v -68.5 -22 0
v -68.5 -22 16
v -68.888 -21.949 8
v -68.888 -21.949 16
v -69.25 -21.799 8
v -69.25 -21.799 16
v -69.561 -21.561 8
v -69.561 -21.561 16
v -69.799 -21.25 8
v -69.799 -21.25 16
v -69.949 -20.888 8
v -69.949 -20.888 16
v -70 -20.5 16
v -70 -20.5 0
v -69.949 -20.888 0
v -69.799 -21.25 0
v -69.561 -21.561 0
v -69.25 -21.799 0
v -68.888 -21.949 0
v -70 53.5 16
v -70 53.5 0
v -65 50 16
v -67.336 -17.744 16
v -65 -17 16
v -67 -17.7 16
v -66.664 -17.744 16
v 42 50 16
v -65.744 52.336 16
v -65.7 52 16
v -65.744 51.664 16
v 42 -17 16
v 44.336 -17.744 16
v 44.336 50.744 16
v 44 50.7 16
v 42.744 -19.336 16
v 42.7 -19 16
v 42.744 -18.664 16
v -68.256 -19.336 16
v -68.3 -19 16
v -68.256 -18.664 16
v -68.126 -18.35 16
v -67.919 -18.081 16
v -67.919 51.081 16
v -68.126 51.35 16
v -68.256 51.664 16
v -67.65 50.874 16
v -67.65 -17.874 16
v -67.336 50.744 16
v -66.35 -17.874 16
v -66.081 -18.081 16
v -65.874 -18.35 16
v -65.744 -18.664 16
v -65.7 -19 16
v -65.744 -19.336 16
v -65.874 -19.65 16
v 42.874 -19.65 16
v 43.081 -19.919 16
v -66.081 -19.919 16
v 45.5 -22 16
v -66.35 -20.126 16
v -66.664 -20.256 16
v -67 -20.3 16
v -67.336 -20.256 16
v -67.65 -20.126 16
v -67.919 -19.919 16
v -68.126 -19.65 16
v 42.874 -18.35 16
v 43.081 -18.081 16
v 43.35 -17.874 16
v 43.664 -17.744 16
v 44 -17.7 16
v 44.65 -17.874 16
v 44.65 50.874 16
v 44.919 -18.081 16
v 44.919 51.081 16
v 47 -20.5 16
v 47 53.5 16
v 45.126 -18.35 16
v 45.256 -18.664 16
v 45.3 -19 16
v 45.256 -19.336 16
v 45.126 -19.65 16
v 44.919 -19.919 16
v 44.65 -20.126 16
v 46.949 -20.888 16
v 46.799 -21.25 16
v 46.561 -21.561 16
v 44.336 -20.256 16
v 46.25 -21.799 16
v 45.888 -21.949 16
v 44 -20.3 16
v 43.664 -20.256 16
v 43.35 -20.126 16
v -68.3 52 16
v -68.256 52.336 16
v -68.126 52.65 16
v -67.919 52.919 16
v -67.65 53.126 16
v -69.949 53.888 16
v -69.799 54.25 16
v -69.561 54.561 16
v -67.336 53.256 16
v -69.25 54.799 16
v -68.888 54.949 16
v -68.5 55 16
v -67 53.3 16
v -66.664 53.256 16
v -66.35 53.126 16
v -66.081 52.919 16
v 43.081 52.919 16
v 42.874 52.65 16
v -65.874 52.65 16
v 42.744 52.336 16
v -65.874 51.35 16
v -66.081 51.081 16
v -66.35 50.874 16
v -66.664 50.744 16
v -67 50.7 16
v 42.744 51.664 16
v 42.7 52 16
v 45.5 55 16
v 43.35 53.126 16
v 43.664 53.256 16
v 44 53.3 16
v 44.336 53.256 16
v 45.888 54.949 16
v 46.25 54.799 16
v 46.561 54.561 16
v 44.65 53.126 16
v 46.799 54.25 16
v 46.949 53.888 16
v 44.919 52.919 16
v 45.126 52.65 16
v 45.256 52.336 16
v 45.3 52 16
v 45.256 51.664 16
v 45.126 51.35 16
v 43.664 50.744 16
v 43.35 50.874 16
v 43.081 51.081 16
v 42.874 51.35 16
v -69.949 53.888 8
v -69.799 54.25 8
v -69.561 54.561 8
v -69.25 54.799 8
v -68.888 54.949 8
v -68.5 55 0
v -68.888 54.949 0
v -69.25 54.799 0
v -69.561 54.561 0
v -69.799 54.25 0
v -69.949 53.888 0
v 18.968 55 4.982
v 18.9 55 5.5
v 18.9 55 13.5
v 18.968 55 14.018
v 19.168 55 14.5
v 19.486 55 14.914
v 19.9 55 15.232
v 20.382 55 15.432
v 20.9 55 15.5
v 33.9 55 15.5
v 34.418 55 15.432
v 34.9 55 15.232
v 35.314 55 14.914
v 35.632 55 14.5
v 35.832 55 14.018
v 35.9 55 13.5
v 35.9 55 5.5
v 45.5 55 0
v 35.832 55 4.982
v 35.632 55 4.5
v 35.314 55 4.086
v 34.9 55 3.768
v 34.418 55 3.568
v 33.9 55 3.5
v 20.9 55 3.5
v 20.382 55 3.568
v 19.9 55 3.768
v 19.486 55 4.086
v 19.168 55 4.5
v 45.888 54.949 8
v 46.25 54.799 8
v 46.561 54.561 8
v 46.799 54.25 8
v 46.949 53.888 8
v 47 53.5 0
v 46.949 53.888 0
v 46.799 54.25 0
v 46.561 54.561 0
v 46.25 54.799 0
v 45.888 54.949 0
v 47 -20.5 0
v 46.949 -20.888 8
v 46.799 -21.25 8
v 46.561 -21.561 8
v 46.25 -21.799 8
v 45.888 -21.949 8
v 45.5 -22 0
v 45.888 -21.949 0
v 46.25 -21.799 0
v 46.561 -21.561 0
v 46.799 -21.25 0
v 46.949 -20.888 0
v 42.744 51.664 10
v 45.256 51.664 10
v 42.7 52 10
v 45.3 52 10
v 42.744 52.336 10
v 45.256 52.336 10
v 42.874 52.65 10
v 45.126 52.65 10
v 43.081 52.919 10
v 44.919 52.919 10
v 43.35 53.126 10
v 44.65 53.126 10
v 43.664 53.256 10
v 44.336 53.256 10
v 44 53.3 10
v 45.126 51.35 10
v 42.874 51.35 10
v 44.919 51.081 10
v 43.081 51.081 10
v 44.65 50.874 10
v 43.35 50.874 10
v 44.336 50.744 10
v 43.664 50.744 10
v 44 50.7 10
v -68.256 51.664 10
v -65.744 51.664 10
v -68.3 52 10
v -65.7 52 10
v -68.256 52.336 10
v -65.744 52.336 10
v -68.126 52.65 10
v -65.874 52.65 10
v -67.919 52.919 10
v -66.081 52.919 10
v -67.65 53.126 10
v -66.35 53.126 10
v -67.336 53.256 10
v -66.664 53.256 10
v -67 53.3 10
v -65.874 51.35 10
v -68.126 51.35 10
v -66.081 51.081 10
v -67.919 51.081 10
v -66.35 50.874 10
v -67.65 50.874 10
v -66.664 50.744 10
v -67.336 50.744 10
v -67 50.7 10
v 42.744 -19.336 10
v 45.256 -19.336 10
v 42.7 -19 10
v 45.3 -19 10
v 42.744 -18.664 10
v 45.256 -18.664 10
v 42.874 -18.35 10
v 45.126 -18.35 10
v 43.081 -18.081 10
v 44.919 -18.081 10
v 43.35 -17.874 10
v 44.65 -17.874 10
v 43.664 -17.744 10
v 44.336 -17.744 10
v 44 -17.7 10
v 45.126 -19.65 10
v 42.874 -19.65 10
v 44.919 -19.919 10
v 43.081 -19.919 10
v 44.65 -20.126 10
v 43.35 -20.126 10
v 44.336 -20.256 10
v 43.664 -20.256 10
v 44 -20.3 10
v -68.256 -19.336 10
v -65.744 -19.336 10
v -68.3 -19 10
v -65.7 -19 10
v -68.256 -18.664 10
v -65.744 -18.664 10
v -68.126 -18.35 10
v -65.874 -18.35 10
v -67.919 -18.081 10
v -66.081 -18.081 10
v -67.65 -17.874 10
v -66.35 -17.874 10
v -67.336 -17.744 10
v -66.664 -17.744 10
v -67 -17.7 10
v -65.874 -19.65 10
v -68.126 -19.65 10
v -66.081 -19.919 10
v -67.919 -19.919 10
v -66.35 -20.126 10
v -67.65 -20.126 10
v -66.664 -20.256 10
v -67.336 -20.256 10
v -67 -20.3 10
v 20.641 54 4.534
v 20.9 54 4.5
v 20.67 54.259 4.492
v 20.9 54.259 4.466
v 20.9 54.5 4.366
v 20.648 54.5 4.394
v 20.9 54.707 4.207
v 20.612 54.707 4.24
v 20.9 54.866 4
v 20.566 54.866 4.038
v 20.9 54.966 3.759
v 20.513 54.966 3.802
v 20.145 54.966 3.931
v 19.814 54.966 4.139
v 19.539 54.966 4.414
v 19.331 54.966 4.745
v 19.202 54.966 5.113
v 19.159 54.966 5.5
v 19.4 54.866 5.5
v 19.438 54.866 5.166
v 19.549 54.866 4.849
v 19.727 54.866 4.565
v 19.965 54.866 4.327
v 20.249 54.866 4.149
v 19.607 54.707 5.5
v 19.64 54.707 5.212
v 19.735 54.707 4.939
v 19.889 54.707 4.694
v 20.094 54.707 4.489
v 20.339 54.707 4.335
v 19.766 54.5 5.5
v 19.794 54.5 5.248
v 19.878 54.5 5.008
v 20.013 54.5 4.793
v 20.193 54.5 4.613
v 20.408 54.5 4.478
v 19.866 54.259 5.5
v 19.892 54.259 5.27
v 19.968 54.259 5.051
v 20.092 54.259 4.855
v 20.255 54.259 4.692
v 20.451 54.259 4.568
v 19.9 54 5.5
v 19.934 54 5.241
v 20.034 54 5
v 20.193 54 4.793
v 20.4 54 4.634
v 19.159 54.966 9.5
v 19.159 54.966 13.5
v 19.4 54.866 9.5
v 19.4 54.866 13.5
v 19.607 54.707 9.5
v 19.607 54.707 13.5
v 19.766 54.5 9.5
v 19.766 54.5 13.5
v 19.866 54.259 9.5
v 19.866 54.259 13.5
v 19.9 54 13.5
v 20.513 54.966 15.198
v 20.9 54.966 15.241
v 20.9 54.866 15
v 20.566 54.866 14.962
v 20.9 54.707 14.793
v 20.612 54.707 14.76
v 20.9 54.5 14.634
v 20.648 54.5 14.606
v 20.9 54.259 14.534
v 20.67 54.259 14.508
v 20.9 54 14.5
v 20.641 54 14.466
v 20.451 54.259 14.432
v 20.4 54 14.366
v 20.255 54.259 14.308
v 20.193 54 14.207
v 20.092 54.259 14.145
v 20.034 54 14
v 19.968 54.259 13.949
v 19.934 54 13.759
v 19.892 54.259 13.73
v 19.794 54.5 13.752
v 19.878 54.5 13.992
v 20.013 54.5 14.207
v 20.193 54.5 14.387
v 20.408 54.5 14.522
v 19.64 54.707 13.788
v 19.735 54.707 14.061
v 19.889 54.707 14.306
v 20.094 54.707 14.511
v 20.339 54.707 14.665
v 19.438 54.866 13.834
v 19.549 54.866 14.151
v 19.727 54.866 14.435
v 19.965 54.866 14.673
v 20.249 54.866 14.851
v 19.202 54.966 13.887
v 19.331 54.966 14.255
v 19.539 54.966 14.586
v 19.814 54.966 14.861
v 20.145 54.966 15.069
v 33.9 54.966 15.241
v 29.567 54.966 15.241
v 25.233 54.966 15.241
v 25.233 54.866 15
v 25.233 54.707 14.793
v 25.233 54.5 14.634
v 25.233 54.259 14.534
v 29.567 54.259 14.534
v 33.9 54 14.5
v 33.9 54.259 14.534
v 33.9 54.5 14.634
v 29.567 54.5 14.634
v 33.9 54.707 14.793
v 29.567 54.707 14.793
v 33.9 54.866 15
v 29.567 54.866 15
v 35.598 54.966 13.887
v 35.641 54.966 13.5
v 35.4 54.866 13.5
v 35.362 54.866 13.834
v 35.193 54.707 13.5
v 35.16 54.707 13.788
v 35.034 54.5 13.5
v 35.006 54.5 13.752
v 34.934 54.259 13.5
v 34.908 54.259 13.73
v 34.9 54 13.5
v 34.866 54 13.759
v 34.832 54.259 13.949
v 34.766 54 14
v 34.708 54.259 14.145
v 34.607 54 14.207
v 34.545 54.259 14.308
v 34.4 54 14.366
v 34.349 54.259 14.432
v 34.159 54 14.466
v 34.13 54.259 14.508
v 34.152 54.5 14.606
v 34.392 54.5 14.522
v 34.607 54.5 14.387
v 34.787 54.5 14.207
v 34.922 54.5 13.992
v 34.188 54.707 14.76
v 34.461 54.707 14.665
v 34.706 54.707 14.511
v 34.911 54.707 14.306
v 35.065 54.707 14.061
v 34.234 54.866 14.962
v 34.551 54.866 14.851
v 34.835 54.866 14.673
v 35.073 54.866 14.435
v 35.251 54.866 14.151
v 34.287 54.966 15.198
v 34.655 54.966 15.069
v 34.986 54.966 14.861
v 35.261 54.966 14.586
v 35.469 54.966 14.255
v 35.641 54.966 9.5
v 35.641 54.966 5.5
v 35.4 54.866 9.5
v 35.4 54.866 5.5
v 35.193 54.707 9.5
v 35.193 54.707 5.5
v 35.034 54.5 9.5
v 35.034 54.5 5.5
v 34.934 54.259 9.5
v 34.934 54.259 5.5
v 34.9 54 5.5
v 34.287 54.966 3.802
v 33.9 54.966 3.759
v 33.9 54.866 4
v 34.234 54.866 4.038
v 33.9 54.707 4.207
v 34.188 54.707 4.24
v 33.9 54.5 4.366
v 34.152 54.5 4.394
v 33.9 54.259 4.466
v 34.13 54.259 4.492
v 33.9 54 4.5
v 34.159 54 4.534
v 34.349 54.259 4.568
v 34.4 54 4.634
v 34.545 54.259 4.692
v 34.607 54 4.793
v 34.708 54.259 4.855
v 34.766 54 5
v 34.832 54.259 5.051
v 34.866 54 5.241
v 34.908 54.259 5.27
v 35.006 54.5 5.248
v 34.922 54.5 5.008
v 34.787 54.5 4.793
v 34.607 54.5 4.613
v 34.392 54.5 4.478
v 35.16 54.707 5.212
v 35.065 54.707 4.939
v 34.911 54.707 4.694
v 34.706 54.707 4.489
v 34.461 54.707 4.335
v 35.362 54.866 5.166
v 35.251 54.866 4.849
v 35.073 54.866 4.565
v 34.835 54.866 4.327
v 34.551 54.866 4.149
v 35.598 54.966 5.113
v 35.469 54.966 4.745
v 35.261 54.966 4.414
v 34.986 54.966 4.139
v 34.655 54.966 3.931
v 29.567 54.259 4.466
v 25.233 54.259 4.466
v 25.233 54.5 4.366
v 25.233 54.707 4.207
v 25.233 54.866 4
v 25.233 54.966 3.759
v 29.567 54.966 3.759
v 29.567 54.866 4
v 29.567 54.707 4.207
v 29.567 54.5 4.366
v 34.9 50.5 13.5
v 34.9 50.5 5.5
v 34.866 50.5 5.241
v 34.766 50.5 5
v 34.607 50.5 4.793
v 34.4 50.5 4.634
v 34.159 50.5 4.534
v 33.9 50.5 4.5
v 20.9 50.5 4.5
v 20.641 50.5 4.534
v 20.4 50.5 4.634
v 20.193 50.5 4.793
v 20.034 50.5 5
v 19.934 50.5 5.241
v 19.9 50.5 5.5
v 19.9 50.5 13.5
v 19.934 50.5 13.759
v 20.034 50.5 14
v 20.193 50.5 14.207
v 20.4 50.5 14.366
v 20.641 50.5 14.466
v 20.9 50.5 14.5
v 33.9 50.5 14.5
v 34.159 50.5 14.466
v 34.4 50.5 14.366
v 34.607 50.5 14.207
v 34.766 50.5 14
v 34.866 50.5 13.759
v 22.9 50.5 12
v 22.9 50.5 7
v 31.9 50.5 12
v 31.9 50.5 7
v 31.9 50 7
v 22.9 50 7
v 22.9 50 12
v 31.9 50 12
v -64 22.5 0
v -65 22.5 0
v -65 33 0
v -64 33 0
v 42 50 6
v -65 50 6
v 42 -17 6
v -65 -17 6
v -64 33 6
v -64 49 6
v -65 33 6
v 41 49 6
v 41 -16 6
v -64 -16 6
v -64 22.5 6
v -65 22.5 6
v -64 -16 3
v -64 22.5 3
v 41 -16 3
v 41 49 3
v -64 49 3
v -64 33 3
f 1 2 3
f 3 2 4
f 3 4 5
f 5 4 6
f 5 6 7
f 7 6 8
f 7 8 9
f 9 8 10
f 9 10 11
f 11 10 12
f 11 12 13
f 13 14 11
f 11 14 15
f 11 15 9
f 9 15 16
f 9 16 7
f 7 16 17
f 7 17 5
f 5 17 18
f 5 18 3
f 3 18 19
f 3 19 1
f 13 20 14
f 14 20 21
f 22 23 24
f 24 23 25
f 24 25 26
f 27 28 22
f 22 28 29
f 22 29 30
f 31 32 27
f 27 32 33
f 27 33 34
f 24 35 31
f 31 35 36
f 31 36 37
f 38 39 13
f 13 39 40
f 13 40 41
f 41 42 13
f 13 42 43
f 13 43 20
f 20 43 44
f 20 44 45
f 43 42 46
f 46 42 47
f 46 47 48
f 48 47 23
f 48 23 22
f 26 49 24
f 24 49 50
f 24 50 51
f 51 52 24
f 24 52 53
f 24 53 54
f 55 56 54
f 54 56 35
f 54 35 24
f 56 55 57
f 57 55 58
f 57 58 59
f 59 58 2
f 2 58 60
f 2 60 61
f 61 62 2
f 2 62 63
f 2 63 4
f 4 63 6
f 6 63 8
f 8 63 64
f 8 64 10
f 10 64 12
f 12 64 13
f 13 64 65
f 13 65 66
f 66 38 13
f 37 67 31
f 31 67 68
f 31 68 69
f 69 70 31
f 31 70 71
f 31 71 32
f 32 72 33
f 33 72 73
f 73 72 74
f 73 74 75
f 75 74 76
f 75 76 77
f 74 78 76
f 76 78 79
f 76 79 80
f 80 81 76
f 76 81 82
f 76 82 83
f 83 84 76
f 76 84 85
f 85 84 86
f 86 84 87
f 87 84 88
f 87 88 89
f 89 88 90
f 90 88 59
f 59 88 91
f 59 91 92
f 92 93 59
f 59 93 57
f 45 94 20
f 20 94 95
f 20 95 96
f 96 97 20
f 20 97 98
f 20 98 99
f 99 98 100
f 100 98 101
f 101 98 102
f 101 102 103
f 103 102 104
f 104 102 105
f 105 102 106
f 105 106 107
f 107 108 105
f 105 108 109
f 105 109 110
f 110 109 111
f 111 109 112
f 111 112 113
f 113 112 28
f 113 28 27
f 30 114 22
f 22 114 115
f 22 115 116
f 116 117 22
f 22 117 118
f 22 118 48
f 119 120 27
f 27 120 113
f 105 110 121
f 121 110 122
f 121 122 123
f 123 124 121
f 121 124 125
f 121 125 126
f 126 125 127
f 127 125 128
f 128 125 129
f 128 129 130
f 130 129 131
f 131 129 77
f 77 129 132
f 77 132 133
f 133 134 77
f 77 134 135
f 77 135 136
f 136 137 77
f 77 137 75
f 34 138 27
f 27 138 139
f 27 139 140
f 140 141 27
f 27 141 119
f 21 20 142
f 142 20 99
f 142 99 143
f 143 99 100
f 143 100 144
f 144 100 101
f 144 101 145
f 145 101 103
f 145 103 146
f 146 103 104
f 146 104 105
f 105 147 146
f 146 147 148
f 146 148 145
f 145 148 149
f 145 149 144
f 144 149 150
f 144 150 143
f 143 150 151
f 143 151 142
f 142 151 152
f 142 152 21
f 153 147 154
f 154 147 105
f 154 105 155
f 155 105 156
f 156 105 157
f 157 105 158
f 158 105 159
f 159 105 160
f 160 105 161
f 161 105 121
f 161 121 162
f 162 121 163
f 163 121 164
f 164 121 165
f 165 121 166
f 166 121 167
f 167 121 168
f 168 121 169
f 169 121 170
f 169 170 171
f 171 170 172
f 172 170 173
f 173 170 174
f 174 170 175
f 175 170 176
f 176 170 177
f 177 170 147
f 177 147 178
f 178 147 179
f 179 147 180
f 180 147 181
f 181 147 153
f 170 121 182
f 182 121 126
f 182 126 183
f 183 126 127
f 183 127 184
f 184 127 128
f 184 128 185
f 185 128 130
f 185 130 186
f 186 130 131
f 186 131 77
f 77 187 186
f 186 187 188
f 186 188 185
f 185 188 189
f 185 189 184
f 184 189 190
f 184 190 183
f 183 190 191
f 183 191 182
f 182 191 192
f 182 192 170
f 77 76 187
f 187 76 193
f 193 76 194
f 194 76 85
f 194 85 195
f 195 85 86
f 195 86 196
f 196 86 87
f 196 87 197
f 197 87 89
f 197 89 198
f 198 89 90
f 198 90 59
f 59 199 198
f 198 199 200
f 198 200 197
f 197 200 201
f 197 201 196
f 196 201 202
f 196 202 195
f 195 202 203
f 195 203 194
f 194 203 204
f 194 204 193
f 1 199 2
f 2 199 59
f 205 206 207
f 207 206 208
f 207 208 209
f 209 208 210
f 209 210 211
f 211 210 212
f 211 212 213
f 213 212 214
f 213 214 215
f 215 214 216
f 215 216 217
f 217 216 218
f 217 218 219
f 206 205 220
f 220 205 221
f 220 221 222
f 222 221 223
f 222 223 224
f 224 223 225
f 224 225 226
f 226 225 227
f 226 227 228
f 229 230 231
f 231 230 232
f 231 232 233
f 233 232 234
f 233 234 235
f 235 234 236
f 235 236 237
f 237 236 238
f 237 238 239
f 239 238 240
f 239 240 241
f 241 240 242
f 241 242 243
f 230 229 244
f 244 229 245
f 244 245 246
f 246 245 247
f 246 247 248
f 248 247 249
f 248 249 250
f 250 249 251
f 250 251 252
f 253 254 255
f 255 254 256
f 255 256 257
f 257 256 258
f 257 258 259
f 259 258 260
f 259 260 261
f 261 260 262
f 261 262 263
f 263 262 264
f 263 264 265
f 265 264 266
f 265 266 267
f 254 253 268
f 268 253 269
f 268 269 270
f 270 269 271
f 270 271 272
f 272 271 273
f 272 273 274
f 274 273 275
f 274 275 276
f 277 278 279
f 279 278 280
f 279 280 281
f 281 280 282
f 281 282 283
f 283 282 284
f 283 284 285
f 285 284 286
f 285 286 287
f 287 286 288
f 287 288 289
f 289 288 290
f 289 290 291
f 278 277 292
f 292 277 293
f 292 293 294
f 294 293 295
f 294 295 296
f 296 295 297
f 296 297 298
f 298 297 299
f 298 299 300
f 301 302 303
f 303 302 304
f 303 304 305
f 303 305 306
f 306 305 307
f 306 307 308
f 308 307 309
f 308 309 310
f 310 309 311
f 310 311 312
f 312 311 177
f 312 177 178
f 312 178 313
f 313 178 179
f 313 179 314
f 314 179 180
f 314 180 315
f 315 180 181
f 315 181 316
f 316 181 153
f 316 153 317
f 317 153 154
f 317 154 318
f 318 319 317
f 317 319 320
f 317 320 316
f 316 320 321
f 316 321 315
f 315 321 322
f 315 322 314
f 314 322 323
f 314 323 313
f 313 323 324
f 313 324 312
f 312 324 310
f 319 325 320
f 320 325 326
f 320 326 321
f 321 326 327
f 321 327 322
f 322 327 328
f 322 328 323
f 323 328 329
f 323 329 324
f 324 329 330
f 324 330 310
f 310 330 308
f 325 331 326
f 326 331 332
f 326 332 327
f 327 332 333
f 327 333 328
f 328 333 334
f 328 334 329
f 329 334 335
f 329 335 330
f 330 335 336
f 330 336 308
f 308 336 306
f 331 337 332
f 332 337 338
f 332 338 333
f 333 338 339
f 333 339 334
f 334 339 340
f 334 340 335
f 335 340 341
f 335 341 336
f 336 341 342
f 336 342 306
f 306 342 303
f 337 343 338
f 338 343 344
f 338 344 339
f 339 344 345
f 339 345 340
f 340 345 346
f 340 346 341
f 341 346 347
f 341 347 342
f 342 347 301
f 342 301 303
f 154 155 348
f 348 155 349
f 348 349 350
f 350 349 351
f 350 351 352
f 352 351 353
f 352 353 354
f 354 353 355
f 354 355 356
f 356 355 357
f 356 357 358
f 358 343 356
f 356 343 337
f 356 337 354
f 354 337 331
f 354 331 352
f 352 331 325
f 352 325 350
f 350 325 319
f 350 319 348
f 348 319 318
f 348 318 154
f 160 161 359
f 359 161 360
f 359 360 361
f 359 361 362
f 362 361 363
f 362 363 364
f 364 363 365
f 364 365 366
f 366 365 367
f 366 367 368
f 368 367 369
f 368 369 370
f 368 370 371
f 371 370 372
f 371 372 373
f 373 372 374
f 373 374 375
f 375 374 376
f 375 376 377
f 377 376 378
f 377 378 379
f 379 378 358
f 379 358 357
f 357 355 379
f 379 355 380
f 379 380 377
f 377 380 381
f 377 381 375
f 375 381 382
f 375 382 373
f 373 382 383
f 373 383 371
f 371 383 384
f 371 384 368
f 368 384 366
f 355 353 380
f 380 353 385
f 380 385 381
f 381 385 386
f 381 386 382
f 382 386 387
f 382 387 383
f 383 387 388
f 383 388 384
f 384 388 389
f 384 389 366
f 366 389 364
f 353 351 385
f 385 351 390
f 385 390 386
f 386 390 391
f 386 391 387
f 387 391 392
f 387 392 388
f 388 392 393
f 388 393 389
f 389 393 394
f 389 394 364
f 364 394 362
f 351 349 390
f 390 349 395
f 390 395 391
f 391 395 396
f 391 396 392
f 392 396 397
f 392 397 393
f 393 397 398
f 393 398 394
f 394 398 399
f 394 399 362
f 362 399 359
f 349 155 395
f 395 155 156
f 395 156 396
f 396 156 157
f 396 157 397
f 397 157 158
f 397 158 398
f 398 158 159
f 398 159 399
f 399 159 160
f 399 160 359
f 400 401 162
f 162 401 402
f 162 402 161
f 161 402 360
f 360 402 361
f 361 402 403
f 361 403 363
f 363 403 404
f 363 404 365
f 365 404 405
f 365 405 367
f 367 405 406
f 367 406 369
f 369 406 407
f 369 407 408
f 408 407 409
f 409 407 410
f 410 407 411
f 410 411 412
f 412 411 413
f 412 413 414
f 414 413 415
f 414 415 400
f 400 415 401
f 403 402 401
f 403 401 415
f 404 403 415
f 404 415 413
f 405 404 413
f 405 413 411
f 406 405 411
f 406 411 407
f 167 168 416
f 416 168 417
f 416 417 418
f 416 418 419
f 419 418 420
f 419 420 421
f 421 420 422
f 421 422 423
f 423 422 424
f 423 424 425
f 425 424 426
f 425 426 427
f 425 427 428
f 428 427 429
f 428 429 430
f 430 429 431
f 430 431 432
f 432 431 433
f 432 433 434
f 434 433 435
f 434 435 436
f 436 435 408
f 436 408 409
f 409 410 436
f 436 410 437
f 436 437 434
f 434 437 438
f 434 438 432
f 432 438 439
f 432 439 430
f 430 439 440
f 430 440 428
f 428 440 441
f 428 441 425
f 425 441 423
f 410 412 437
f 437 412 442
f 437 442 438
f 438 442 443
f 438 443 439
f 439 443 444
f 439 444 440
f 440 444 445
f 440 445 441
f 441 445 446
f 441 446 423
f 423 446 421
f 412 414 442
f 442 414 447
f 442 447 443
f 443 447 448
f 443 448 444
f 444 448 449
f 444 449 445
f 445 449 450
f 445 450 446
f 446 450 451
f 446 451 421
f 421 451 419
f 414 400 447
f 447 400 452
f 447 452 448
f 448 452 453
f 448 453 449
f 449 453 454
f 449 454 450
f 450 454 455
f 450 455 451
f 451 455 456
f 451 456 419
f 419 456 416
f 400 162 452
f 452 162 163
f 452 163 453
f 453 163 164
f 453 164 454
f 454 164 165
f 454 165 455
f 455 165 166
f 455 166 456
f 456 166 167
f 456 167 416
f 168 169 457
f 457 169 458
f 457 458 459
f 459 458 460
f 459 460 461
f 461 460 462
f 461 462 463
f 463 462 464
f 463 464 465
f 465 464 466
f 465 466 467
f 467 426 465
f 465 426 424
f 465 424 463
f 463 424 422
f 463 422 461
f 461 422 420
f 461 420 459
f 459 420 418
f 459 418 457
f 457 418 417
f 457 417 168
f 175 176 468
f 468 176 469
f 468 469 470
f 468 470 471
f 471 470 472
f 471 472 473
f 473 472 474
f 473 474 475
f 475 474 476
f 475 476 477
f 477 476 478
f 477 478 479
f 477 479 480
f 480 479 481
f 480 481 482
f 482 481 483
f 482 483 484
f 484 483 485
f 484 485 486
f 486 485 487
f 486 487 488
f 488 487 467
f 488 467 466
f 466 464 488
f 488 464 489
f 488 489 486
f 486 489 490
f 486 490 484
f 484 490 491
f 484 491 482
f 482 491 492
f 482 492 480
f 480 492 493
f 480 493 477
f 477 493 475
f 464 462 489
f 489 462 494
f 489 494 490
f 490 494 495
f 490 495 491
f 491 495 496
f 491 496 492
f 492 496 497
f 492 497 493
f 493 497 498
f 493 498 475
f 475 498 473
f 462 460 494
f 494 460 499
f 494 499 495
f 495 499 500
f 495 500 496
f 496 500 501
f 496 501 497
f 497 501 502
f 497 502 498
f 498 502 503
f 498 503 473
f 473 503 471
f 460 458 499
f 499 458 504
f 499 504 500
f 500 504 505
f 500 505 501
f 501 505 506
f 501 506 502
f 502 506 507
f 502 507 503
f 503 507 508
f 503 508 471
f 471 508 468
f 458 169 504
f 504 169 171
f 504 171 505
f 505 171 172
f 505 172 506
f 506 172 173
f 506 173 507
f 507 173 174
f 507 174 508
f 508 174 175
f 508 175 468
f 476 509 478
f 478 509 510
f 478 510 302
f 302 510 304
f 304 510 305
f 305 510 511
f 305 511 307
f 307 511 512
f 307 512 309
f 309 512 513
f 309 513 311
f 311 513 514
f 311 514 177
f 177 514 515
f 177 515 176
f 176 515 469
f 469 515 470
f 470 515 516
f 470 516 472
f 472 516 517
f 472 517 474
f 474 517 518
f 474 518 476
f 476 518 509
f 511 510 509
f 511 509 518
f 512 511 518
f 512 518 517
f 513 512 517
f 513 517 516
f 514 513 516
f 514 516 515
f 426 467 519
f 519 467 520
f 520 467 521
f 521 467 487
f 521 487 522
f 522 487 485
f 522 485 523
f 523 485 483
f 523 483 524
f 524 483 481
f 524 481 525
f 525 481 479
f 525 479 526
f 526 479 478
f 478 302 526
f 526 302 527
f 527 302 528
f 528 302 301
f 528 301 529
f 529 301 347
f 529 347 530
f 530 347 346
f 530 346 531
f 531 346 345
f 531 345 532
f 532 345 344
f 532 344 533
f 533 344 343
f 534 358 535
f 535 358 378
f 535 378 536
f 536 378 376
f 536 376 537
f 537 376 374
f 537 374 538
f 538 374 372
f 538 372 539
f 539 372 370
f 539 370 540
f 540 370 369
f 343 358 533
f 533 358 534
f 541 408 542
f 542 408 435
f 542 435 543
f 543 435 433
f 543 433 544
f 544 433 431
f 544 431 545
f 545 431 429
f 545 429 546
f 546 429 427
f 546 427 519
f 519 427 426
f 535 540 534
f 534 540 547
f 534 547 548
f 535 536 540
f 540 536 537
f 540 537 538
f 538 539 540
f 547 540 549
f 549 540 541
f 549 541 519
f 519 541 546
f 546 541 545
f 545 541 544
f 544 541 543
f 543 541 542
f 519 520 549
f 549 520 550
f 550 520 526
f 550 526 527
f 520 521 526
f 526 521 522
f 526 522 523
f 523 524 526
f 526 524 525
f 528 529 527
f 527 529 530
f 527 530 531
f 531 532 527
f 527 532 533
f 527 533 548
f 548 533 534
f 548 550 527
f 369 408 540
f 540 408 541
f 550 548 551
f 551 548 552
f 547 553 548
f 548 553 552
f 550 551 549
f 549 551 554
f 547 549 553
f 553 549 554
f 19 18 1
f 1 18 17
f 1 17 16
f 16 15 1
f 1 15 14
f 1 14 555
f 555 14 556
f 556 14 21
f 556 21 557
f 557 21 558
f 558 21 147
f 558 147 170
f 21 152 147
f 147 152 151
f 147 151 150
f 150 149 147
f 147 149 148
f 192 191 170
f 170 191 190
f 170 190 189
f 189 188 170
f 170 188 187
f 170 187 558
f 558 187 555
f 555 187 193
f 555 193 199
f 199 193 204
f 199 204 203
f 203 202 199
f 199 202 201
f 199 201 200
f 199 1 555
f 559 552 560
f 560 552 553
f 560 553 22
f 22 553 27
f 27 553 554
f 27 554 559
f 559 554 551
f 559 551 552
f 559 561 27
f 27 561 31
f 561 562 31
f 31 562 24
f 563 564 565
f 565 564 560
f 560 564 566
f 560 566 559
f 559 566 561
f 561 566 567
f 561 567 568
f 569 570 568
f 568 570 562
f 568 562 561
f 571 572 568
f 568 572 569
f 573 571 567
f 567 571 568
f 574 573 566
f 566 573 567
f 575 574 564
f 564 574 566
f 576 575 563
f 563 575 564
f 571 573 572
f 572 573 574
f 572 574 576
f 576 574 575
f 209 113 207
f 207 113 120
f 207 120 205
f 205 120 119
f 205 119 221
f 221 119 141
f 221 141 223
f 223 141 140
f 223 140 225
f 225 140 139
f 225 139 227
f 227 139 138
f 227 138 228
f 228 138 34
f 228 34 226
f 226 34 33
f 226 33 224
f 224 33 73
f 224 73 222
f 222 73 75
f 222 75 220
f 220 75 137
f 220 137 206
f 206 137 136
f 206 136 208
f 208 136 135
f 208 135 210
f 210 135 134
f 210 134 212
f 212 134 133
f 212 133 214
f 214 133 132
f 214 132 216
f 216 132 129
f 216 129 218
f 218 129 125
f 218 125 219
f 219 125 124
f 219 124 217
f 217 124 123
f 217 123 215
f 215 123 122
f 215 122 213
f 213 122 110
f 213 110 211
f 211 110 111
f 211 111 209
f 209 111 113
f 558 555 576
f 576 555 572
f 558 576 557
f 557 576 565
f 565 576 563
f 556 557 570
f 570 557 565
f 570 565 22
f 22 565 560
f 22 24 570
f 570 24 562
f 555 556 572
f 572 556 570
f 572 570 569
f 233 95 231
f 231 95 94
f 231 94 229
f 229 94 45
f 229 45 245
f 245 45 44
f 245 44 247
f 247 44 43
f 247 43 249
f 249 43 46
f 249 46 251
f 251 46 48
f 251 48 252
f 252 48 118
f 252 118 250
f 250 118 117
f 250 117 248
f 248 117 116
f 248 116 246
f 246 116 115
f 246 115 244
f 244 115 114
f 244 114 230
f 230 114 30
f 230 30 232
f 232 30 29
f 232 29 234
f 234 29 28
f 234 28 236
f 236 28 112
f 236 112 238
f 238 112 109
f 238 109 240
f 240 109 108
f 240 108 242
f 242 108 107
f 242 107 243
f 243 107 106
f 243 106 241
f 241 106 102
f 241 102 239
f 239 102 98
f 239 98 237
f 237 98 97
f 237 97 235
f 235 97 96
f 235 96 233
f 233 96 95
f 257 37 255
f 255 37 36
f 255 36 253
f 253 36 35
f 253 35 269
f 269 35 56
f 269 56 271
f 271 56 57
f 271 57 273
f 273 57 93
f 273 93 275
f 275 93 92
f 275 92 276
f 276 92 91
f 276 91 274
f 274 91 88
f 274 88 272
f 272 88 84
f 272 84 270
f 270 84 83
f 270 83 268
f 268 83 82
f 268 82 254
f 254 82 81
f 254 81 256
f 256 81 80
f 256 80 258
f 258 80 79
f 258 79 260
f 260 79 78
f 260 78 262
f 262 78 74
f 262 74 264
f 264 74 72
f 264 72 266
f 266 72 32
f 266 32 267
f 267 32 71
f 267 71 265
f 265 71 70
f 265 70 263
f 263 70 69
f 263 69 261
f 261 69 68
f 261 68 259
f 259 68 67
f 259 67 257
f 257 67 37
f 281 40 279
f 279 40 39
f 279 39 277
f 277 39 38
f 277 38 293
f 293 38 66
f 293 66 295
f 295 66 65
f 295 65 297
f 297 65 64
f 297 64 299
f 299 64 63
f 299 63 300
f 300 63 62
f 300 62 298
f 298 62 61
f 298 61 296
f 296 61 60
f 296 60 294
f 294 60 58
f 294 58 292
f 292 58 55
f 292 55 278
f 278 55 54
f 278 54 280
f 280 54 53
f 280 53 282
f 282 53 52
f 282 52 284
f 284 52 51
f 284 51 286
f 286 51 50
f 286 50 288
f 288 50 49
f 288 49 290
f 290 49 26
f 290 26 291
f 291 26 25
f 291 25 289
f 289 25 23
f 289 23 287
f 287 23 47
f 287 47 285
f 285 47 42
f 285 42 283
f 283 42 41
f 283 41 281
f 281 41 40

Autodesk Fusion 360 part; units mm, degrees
sketch "Sketch1" plane through (0, 0, 0) normal (0, 0, 1) x (1, 0, 0)
  line L0 (-65, 50) -> (42, 50)
  line L1 (42, 50) -> (42, -17)
  line L2 (42, -17) -> (-65, -17)
  line L3 (-65, -17) -> (-65, 50)
  line L4 (-64, 49) -> (41, 49)
  line L5 (41, 49) -> (41, -16)
  line L6 (41, -16) -> (-64, -16)
  line L7 (-64, -16) -> (-64, 49)
  line L8 (-70, 55) -> (47, 55)
  line L9 (47, 55) -> (47, -22)
  line L10 (47, -22) -> (-70, -22)
  line L11 (-70, -22) -> (-70, 55)
  circle A0 centre (-67, 52) radius 1.3
  circle A1 centre (-67, -19) radius 1.3
  circle A2 centre (44, -19) radius 1.3
  circle A3 centre (44, 52) radius 1.3
  line L12 (-65, 33) -> (-64, 33)
  line L13 (-64, 33) -> (-64, 22.5)
  line L14 (-64, 22.5) -> (-65, 22.5)
  line L15 (-65, 22.5) -> (-65, 33)
  line L16 (18.5, 47.1) -> (36.3, 47.1)
  line L17 (36.3, 47.1) -> (36.3, 26.1)
  line L18 (36.3, 26.1) -> (18.5, 26.1)
  line L19 (18.5, 26.1) -> (18.5, 47.1)
  line L20 (22.9, 58) -> (31.9, 58)
  line L21 (31.9, 58) -> (31.9, 38)
  line L22 (31.9, 38) -> (22.9, 38)
  line L23 (22.9, 38) -> (22.9, 58)
  dimension "d1" = 107
  dimension "d2" = 67
  dimension "d3" = 105
  dimension "d4" = 65
  dimension "d5" = 1
  dimension "d6" = 1
  dimension "d7" = 117
  dimension "d8" = 77
  dimension "d9" = 5
  dimension "d10" = 5
  dimension "d11" = 2.6
  dimension "d12" = 2.6
  dimension "d13" = 2.6
  dimension "d14" = 2.6
  dimension "d15" = 3
  dimension "d16" = 3
  dimension "d17" = 3
  dimension "d18" = 3
  dimension "d19" = 3
  dimension "d20" = 3
  dimension "d21" = 3
  dimension "d22" = 3
  dimension "d23" = 1
  dimension "d24" = 10.5
  dimension "d25" = 17
  dimension "d26" = 17.8
  dimension "d27" = 21
  dimension "d28" = 1.9
  dimension "d29" = 4.7
  dimension "d30" = 9
  dimension "d31" = 20
  dimension "d32" = 4.4
extrude "Extrude1" add sketch "Sketch1" along normal blind 3 contours L0 L1 L2 L3 L8 L9 L10 L11 L15 L21 L23 | L0 L3 L4 L7 L12 L23 | L0 L8 L21 L23 | L0 L4 L21 L23 | L0 L1 L2 L3 L4 L5 L6 L7 L14 L21 | L4 L5 L6 L7 L13 L16 L17 L18 L19 L21 L23 | L4 L16 L21 L23 | L16 L17 L18 L19 L21 L22 L23 | L16 L21 L22 L23
extrude "Extrude2" add sketch "Sketch1" along normal blind 5 contours L0 L3 L4 L7 L12 L23 | L0 L4 L21 L23 | L0 L1 L2 L3 L4 L5 L6 L7 L14 L21
extrude "Extrude3" add 1 faces at (6, -16.6667, 5) along direction (0, 0, 1) blind 1
extrude "Extrude4" add 1 faces at (-68.3333, 18.5, 3) along direction (0, 0, 1) blind 13
extrude "Extrude5" cut sketch "Sketch1" along normal blind 12 contours L0 L8 L21 L23
extrude "Extrude6" add sketch "Sketch1" along normal blind 7 contours L0 L8 L21 L23
sketch "Sketch2" plane through (0, 55, 0) normal (0, 1, 0) x (-1, 0, 0)
  line L0 (-31.9, 7) -> (-31.9, 12)
  line L1 (-31.9, 12) -> (-22.9, 12)
  line L2 (-22.9, 12) -> (-22.9, 7)
  line L3 (-22.9, 7) -> (-31.9, 7)
  line L4 (-47, 0) -> (70, 0)
  line L5 (70, 0) -> (70, 16)
  line L6 (70, 16) -> (-47, 16)
  line L7 (-47, 16) -> (-47, 0)
  line L8 (-34.9, 14.5) -> (-19.9, 14.5)
  line L9 (-19.9, 14.5) -> (-19.9, 4.5)
  line L10 (-19.9, 4.5) -> (-34.9, 4.5)
  line L11 (-34.9, 4.5) -> (-34.9, 14.5)
  dimension "d45" = 15
  dimension "d46" = 10
  dimension "d47" = 3
  dimension "d48" = 2.5
extrude "Extrude7" cut sketch "Sketch2" against normal blind 4.5 contours L8 L9 L10 L11
fillet "Fillet1" radius 1 4 edges at (19.9, 52.75, 4.5) (34.9, 52.75, 4.5) (34.9, 52.75, 14.5) (19.9, 52.75, 14.5)
fillet "Fillet2" radius 1 8 edges at (20.1929, 55, 4.7929) (27.4, 55, 4.5) (34.6071, 55, 4.7929) (34.9, 55, 9.5) (34.6071, 55, 14.2071) (27.4, 55, 14.5) (20.1929, 55, 14.2071) (19.9, 55, 9.5)
extrude "Extrude8" add sketch "Sketch1" along normal blind 10 contours A0 | A1 | A2 | A3
fillet "Fillet3" radius 1.5 4 edges at (47, -22, 8) (47, 55, 8) (-70, 55, 8) (-70, -22, 8)
